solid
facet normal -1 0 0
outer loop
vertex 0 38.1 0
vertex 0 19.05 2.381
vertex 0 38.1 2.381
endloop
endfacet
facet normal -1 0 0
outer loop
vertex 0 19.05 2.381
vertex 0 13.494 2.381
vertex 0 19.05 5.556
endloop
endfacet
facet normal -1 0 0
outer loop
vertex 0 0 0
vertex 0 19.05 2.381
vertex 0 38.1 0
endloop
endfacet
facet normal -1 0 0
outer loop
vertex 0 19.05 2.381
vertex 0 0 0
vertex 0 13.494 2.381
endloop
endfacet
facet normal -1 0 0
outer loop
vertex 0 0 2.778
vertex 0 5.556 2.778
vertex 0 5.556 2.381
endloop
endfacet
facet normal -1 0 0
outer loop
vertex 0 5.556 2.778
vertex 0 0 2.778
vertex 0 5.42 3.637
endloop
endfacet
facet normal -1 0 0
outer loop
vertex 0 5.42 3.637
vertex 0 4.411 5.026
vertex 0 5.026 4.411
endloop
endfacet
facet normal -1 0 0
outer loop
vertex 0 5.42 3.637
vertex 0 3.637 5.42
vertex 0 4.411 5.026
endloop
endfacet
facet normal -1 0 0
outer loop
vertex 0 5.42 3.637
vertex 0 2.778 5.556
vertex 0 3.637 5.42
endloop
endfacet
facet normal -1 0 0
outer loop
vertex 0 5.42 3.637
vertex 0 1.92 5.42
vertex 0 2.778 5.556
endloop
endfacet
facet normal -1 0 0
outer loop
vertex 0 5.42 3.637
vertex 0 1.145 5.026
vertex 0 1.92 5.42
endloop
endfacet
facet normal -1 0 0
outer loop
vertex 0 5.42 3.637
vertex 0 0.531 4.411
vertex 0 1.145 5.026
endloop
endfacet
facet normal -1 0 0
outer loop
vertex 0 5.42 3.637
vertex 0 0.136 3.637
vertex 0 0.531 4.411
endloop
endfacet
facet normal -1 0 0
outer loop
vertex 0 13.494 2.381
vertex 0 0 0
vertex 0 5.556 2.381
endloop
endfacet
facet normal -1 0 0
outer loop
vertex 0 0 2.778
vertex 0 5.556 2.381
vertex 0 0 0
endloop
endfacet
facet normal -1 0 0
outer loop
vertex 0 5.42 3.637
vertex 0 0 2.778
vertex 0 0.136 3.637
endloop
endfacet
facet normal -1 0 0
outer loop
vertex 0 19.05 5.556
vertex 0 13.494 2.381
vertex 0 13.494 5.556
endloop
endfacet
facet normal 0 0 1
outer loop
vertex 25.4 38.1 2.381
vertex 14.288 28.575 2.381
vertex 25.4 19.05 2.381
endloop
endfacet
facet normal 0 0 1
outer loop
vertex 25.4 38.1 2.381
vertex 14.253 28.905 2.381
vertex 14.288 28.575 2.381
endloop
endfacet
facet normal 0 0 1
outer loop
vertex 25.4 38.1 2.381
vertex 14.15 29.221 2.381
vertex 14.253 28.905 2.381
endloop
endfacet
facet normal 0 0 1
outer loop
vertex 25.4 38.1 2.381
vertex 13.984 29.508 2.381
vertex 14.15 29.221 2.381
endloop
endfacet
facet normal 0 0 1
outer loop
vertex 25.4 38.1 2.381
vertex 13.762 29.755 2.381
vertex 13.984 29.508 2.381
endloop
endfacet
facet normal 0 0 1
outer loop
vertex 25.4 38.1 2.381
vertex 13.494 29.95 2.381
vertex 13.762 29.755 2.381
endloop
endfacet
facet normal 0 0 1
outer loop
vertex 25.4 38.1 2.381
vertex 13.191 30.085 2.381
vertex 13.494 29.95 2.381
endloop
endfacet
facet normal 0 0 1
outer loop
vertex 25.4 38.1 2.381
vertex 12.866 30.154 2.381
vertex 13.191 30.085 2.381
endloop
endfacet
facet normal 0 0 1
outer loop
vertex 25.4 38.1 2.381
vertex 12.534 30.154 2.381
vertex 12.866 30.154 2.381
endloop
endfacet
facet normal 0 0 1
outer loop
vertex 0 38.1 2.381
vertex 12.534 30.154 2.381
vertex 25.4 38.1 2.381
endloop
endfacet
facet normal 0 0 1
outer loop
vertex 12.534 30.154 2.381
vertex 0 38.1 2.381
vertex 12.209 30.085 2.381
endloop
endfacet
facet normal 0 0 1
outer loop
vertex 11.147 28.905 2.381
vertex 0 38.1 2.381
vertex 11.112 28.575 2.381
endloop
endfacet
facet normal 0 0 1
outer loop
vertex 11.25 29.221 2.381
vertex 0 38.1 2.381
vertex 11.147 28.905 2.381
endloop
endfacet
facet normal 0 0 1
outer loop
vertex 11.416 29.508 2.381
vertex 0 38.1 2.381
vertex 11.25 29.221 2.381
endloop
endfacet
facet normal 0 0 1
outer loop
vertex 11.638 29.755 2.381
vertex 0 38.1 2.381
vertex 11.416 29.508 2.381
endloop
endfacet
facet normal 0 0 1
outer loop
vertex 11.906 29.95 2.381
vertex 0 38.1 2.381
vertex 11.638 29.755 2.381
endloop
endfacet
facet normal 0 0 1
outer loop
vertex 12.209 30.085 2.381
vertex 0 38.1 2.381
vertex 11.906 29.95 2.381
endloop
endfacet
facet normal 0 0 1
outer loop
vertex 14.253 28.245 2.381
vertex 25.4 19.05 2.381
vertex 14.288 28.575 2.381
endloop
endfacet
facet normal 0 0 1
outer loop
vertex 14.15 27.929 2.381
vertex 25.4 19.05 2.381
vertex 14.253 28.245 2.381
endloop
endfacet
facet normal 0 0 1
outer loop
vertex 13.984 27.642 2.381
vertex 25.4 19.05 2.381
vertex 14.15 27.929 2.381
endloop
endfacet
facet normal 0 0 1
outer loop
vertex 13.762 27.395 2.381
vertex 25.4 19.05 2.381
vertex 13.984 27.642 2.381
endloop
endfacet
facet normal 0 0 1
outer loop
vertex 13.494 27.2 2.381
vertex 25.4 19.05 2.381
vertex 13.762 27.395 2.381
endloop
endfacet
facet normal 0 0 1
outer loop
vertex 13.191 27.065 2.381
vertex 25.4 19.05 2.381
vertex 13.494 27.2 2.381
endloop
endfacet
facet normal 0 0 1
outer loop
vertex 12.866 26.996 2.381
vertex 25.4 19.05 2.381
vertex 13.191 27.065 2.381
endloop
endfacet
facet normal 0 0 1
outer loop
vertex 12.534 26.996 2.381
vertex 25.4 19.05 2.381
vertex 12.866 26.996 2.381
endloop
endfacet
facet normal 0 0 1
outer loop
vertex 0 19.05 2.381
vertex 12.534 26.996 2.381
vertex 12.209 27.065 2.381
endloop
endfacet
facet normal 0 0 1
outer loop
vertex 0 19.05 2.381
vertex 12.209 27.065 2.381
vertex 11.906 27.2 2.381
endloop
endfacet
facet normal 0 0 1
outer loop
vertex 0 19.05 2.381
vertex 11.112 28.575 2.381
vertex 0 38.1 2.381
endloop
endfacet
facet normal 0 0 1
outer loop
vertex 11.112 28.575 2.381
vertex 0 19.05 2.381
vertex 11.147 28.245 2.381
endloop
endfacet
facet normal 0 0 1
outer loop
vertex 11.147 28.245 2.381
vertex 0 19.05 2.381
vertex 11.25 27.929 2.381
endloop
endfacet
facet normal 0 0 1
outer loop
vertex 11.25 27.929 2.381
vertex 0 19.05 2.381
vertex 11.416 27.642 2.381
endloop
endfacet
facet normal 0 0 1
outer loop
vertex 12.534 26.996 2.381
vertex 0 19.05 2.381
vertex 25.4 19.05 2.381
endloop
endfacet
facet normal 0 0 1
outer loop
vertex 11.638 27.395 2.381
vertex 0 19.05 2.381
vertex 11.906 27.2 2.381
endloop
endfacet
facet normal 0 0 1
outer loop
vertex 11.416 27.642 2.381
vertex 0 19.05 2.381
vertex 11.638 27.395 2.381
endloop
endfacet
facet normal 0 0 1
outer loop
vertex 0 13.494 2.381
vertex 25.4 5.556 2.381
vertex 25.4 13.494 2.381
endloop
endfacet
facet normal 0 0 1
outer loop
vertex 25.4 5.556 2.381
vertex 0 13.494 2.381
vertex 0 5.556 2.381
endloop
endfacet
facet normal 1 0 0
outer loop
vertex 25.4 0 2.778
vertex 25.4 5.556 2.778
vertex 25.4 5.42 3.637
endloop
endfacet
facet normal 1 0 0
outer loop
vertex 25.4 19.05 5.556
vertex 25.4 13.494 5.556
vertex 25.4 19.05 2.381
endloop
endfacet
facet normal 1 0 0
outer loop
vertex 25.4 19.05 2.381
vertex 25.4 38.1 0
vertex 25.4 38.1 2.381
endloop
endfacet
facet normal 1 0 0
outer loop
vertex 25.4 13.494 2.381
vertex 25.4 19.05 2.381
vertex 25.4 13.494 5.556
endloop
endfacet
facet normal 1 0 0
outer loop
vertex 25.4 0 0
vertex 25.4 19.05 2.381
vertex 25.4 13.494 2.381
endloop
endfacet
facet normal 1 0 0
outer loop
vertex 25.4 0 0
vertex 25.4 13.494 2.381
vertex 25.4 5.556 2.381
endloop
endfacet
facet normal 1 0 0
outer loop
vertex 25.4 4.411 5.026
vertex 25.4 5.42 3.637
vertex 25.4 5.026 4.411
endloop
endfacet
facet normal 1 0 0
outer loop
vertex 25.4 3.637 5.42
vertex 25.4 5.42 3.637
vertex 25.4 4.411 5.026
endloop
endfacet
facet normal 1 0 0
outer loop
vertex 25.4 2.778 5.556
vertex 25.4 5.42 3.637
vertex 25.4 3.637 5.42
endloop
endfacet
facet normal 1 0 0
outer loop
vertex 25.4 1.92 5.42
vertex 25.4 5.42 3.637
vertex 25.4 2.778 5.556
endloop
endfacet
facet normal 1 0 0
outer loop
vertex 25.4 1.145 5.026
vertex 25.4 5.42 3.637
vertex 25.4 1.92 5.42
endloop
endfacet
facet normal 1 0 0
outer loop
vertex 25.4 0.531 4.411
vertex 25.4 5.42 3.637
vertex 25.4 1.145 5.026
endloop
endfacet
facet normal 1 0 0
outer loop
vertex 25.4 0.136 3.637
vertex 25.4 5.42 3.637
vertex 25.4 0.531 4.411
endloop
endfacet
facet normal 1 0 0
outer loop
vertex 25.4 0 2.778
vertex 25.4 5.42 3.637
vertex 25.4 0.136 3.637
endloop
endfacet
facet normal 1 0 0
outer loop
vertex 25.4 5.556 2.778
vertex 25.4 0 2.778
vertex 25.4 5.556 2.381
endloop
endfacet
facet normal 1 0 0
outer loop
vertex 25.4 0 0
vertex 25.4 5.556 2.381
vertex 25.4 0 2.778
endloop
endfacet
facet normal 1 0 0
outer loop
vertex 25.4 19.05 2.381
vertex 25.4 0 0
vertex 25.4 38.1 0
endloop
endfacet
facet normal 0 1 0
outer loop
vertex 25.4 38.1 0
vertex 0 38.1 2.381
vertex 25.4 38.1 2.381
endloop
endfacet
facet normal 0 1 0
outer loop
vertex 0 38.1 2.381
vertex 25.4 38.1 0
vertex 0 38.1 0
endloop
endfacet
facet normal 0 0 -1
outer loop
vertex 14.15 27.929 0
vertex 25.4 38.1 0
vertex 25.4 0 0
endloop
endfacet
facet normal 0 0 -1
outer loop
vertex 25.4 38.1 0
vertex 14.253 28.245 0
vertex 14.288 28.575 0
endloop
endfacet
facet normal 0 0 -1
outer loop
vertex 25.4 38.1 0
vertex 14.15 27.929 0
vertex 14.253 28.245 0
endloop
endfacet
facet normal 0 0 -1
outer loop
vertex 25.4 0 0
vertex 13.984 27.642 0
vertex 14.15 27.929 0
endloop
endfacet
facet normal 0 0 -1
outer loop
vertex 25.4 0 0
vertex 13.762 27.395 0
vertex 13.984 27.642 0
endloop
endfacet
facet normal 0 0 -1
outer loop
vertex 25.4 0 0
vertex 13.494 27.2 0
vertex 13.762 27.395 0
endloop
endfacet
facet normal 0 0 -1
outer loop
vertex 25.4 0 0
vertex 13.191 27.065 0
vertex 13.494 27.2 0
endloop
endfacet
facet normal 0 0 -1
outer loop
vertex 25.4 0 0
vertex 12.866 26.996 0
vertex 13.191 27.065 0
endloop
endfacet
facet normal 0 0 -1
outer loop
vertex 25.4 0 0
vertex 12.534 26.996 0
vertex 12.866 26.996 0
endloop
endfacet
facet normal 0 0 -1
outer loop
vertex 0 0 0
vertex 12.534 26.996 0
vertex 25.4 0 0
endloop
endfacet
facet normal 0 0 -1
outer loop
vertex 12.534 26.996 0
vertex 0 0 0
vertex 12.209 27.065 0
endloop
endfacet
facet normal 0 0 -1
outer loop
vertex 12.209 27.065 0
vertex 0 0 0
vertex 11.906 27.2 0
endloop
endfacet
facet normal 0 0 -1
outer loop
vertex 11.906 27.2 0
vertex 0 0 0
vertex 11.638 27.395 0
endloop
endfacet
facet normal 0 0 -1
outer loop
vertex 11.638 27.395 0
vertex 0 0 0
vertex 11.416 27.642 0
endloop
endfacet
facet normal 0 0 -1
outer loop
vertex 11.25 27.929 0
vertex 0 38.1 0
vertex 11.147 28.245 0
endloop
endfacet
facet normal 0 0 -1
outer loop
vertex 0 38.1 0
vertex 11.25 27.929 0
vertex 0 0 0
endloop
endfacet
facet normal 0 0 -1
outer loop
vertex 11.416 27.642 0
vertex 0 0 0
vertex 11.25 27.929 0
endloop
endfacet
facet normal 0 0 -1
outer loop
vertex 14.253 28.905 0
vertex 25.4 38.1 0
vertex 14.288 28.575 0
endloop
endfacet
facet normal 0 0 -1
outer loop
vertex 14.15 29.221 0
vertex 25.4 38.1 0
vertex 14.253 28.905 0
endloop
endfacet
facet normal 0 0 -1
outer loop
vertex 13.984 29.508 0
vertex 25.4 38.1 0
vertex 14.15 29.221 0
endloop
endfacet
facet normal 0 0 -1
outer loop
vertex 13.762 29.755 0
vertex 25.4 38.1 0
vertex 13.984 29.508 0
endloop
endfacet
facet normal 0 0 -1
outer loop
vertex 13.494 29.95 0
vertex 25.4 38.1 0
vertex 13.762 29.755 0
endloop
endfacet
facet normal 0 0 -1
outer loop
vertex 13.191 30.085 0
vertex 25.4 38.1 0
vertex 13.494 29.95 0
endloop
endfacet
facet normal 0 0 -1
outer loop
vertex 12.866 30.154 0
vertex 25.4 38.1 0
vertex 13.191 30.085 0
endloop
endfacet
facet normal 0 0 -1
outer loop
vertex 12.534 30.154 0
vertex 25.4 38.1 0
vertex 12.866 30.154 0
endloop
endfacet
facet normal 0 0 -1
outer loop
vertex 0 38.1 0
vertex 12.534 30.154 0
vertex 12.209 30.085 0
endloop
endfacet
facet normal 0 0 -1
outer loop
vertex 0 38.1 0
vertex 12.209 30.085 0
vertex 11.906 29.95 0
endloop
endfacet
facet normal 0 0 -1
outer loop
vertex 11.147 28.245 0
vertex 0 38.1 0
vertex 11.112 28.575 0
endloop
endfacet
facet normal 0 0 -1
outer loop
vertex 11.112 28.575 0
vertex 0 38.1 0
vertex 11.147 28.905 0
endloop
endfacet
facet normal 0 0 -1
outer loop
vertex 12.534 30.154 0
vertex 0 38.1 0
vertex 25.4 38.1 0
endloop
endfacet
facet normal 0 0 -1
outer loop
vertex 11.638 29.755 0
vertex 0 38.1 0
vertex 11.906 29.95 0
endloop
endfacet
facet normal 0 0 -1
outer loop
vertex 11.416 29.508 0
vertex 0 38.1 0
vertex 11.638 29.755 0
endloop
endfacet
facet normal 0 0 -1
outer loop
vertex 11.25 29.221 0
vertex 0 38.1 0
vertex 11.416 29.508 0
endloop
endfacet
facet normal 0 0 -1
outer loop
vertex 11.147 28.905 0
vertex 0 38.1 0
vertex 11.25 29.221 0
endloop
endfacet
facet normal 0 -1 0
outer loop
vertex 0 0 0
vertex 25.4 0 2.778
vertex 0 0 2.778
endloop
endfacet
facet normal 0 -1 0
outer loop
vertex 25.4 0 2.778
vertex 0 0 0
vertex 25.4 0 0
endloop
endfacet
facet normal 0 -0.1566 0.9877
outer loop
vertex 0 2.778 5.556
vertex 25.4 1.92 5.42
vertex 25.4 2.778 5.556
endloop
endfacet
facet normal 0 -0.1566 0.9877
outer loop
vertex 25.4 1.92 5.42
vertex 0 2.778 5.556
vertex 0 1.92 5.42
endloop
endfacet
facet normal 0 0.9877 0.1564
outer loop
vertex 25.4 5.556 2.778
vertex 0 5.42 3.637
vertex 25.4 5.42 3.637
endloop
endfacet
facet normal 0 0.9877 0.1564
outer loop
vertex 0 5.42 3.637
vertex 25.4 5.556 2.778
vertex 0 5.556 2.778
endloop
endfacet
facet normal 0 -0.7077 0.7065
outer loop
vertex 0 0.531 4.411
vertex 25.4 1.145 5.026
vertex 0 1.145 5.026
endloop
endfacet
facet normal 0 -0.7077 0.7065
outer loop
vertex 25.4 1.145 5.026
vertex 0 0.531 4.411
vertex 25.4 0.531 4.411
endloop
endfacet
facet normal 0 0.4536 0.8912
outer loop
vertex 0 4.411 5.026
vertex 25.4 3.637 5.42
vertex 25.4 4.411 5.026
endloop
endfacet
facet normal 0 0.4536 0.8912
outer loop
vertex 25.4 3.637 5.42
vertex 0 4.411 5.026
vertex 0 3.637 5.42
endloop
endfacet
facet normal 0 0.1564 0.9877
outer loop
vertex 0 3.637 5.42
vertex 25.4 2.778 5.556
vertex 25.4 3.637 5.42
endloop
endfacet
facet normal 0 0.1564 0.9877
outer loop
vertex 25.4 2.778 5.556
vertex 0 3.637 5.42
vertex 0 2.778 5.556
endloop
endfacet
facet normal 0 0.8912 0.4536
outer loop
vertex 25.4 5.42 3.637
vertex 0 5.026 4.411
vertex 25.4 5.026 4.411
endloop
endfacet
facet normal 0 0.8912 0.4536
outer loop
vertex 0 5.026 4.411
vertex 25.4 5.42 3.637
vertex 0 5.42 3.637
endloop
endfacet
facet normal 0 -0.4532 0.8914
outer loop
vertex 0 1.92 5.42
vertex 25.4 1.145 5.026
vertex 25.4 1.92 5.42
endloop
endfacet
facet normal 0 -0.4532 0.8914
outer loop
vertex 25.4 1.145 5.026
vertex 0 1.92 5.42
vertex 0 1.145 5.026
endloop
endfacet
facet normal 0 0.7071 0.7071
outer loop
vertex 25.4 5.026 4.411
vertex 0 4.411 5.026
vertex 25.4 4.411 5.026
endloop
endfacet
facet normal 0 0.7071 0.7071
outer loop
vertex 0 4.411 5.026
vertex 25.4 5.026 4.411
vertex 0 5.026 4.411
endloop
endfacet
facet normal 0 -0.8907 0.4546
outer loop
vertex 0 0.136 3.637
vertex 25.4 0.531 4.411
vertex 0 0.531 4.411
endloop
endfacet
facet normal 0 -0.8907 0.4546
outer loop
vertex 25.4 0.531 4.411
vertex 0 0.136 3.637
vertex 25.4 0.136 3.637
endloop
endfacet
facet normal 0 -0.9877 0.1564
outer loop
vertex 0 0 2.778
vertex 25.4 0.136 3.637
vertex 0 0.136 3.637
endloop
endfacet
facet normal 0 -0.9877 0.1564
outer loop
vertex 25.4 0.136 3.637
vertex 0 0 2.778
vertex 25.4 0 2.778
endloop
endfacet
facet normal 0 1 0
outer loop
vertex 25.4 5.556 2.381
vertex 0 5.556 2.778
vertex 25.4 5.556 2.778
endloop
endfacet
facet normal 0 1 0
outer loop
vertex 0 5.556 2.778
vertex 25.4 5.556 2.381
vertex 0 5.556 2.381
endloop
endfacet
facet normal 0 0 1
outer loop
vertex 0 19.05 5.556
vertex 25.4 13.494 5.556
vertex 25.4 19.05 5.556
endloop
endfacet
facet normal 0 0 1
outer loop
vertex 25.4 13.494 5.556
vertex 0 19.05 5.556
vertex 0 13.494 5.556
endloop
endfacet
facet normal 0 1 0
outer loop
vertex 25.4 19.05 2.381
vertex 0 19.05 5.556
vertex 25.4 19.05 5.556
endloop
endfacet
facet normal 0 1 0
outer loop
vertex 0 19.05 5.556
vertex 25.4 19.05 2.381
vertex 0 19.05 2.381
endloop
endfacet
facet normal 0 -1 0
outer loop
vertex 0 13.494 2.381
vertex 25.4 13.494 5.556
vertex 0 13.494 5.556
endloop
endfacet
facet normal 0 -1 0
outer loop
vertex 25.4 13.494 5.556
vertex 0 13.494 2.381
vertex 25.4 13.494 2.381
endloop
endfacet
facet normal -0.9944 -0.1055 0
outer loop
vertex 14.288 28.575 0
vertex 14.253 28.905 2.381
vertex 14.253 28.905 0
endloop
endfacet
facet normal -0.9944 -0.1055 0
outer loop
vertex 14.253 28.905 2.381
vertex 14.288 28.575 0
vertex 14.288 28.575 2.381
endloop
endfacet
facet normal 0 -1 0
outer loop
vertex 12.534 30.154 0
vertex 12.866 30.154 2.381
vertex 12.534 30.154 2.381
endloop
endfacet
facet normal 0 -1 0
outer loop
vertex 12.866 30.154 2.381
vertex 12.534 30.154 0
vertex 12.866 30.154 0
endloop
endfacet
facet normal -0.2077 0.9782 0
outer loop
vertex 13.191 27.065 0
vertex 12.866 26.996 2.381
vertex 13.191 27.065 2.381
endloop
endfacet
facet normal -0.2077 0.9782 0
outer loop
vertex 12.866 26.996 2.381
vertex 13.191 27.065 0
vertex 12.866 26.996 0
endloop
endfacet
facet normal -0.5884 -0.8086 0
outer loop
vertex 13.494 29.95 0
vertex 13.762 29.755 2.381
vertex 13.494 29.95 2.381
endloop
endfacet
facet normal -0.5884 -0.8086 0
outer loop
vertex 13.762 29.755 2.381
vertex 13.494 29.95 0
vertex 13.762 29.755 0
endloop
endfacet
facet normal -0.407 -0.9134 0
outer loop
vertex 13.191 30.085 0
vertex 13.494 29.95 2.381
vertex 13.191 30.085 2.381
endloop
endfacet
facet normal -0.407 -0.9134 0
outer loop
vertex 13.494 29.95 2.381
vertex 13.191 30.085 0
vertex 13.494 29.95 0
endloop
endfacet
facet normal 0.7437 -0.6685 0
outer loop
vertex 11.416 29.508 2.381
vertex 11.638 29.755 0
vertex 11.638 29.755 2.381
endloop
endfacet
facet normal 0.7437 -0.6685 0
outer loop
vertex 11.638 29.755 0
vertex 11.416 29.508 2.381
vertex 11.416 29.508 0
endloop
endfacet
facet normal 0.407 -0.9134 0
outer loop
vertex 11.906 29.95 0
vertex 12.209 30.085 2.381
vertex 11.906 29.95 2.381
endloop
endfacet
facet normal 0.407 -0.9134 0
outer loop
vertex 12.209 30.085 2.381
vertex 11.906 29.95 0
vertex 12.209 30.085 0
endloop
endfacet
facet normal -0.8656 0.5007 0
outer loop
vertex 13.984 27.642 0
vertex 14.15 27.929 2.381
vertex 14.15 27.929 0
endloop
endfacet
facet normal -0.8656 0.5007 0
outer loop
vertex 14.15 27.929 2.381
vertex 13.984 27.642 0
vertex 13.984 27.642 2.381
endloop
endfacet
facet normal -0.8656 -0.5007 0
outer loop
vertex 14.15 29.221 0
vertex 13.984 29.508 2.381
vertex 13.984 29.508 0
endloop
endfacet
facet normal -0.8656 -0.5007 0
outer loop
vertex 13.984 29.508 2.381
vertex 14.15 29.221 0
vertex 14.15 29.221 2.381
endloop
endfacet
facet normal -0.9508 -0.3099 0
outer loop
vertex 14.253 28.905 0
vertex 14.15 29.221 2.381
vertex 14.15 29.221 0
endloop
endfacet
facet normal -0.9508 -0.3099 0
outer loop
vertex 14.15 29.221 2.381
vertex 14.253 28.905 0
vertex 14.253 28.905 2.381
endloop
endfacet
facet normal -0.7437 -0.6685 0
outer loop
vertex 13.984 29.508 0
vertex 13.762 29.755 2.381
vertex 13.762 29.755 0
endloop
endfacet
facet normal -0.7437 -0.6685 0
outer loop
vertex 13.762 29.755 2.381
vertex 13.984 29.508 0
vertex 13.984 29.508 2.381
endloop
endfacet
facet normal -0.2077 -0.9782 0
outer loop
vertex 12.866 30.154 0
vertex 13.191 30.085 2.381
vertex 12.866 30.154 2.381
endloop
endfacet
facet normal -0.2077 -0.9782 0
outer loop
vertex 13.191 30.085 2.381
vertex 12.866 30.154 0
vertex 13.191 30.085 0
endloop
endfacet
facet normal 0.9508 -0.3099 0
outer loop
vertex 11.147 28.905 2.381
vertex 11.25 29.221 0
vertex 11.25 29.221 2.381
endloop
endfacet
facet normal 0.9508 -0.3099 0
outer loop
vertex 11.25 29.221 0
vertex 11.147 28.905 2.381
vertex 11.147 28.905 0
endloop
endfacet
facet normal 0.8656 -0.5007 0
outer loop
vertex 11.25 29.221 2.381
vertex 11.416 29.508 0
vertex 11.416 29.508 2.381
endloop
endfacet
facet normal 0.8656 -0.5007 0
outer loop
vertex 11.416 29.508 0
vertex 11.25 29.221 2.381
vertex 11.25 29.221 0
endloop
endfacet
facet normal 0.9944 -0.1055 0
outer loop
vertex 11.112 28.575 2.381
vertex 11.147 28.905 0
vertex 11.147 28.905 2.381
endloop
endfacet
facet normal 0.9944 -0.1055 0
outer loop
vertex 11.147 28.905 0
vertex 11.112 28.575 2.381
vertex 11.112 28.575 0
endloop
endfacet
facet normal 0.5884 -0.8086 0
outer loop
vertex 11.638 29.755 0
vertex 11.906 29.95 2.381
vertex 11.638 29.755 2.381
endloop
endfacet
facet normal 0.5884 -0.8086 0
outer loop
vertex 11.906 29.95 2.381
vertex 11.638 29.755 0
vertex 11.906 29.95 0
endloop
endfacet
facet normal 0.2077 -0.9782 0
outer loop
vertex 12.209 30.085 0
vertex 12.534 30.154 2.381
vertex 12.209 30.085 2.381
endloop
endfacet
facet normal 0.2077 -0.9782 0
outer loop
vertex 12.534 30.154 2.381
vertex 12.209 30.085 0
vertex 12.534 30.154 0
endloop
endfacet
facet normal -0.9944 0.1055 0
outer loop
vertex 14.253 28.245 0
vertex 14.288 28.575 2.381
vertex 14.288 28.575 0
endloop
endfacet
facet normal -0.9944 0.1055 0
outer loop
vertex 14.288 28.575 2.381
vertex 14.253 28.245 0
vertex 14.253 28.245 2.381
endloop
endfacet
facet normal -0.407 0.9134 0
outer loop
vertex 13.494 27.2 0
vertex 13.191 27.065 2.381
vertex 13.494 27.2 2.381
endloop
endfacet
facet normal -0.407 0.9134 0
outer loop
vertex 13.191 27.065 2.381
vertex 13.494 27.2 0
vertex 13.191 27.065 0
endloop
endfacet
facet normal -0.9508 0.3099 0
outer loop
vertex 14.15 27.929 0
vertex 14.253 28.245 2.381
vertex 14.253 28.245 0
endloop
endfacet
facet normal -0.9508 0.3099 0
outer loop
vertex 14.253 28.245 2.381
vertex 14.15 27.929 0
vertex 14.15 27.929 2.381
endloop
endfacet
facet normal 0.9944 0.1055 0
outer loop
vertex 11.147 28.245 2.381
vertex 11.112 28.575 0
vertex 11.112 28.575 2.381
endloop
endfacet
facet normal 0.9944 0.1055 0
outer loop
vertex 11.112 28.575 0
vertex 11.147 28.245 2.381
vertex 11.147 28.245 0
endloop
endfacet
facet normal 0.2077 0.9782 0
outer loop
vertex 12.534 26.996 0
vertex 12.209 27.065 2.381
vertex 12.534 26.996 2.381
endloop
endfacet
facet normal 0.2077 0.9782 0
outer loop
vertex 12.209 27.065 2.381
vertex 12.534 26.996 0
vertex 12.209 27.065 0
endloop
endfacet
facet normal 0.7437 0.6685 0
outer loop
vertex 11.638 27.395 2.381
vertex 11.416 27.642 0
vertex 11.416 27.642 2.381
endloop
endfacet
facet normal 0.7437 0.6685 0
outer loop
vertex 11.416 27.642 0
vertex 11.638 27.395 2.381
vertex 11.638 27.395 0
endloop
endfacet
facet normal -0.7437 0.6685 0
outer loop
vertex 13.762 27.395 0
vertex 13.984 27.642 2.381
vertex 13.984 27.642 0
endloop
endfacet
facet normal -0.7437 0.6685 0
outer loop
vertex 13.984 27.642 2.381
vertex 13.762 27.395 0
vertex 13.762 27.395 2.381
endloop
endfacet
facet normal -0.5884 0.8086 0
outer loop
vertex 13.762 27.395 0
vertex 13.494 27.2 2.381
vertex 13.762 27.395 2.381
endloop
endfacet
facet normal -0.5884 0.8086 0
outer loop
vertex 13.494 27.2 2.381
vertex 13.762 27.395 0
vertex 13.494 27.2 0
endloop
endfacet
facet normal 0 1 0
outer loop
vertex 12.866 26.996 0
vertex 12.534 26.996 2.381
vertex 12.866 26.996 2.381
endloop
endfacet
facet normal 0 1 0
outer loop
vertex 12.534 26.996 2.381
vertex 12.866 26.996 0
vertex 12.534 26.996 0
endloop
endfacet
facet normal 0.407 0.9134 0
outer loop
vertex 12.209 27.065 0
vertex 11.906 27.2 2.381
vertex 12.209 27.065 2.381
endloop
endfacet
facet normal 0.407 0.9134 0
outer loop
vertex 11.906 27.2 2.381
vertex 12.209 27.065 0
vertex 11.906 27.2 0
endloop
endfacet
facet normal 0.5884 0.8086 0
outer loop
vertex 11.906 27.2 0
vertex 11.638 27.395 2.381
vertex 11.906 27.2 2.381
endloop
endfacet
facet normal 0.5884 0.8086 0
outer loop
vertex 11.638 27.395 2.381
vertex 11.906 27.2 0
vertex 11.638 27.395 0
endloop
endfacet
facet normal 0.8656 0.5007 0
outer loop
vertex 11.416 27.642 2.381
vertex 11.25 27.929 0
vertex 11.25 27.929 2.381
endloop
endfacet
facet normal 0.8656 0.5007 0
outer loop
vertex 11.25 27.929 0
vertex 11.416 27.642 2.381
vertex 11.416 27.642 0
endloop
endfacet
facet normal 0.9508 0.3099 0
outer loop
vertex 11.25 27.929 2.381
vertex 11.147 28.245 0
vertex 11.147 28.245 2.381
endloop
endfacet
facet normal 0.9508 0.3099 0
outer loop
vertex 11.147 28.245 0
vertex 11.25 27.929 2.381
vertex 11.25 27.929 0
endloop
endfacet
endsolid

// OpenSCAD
in=25.4;

w=in;
l=1.5*in;
h1=in*3/32;
h2=h1+(in*1/8);
gap=in*5/16;
d=in*1/8;

difference() {
    union() {
        cube([w, l, h1]);
        translate([0,h2/2,h2/2]) rotate([0,90,0]) cylinder(d=h2, h=w, $fn=20);
        cube([w, h2, h2/2]);
        translate([0, gap+h2, 0]) cube([w, h2, h2]);
        //translate([0,gap+h2/2,h2/2]) rotate([0,90,0]) cylinder(d=h2, h=w);
    }
    translate([w/2, l*.75, 0]) cylinder(d=d, h=w, $fn=30);
}
